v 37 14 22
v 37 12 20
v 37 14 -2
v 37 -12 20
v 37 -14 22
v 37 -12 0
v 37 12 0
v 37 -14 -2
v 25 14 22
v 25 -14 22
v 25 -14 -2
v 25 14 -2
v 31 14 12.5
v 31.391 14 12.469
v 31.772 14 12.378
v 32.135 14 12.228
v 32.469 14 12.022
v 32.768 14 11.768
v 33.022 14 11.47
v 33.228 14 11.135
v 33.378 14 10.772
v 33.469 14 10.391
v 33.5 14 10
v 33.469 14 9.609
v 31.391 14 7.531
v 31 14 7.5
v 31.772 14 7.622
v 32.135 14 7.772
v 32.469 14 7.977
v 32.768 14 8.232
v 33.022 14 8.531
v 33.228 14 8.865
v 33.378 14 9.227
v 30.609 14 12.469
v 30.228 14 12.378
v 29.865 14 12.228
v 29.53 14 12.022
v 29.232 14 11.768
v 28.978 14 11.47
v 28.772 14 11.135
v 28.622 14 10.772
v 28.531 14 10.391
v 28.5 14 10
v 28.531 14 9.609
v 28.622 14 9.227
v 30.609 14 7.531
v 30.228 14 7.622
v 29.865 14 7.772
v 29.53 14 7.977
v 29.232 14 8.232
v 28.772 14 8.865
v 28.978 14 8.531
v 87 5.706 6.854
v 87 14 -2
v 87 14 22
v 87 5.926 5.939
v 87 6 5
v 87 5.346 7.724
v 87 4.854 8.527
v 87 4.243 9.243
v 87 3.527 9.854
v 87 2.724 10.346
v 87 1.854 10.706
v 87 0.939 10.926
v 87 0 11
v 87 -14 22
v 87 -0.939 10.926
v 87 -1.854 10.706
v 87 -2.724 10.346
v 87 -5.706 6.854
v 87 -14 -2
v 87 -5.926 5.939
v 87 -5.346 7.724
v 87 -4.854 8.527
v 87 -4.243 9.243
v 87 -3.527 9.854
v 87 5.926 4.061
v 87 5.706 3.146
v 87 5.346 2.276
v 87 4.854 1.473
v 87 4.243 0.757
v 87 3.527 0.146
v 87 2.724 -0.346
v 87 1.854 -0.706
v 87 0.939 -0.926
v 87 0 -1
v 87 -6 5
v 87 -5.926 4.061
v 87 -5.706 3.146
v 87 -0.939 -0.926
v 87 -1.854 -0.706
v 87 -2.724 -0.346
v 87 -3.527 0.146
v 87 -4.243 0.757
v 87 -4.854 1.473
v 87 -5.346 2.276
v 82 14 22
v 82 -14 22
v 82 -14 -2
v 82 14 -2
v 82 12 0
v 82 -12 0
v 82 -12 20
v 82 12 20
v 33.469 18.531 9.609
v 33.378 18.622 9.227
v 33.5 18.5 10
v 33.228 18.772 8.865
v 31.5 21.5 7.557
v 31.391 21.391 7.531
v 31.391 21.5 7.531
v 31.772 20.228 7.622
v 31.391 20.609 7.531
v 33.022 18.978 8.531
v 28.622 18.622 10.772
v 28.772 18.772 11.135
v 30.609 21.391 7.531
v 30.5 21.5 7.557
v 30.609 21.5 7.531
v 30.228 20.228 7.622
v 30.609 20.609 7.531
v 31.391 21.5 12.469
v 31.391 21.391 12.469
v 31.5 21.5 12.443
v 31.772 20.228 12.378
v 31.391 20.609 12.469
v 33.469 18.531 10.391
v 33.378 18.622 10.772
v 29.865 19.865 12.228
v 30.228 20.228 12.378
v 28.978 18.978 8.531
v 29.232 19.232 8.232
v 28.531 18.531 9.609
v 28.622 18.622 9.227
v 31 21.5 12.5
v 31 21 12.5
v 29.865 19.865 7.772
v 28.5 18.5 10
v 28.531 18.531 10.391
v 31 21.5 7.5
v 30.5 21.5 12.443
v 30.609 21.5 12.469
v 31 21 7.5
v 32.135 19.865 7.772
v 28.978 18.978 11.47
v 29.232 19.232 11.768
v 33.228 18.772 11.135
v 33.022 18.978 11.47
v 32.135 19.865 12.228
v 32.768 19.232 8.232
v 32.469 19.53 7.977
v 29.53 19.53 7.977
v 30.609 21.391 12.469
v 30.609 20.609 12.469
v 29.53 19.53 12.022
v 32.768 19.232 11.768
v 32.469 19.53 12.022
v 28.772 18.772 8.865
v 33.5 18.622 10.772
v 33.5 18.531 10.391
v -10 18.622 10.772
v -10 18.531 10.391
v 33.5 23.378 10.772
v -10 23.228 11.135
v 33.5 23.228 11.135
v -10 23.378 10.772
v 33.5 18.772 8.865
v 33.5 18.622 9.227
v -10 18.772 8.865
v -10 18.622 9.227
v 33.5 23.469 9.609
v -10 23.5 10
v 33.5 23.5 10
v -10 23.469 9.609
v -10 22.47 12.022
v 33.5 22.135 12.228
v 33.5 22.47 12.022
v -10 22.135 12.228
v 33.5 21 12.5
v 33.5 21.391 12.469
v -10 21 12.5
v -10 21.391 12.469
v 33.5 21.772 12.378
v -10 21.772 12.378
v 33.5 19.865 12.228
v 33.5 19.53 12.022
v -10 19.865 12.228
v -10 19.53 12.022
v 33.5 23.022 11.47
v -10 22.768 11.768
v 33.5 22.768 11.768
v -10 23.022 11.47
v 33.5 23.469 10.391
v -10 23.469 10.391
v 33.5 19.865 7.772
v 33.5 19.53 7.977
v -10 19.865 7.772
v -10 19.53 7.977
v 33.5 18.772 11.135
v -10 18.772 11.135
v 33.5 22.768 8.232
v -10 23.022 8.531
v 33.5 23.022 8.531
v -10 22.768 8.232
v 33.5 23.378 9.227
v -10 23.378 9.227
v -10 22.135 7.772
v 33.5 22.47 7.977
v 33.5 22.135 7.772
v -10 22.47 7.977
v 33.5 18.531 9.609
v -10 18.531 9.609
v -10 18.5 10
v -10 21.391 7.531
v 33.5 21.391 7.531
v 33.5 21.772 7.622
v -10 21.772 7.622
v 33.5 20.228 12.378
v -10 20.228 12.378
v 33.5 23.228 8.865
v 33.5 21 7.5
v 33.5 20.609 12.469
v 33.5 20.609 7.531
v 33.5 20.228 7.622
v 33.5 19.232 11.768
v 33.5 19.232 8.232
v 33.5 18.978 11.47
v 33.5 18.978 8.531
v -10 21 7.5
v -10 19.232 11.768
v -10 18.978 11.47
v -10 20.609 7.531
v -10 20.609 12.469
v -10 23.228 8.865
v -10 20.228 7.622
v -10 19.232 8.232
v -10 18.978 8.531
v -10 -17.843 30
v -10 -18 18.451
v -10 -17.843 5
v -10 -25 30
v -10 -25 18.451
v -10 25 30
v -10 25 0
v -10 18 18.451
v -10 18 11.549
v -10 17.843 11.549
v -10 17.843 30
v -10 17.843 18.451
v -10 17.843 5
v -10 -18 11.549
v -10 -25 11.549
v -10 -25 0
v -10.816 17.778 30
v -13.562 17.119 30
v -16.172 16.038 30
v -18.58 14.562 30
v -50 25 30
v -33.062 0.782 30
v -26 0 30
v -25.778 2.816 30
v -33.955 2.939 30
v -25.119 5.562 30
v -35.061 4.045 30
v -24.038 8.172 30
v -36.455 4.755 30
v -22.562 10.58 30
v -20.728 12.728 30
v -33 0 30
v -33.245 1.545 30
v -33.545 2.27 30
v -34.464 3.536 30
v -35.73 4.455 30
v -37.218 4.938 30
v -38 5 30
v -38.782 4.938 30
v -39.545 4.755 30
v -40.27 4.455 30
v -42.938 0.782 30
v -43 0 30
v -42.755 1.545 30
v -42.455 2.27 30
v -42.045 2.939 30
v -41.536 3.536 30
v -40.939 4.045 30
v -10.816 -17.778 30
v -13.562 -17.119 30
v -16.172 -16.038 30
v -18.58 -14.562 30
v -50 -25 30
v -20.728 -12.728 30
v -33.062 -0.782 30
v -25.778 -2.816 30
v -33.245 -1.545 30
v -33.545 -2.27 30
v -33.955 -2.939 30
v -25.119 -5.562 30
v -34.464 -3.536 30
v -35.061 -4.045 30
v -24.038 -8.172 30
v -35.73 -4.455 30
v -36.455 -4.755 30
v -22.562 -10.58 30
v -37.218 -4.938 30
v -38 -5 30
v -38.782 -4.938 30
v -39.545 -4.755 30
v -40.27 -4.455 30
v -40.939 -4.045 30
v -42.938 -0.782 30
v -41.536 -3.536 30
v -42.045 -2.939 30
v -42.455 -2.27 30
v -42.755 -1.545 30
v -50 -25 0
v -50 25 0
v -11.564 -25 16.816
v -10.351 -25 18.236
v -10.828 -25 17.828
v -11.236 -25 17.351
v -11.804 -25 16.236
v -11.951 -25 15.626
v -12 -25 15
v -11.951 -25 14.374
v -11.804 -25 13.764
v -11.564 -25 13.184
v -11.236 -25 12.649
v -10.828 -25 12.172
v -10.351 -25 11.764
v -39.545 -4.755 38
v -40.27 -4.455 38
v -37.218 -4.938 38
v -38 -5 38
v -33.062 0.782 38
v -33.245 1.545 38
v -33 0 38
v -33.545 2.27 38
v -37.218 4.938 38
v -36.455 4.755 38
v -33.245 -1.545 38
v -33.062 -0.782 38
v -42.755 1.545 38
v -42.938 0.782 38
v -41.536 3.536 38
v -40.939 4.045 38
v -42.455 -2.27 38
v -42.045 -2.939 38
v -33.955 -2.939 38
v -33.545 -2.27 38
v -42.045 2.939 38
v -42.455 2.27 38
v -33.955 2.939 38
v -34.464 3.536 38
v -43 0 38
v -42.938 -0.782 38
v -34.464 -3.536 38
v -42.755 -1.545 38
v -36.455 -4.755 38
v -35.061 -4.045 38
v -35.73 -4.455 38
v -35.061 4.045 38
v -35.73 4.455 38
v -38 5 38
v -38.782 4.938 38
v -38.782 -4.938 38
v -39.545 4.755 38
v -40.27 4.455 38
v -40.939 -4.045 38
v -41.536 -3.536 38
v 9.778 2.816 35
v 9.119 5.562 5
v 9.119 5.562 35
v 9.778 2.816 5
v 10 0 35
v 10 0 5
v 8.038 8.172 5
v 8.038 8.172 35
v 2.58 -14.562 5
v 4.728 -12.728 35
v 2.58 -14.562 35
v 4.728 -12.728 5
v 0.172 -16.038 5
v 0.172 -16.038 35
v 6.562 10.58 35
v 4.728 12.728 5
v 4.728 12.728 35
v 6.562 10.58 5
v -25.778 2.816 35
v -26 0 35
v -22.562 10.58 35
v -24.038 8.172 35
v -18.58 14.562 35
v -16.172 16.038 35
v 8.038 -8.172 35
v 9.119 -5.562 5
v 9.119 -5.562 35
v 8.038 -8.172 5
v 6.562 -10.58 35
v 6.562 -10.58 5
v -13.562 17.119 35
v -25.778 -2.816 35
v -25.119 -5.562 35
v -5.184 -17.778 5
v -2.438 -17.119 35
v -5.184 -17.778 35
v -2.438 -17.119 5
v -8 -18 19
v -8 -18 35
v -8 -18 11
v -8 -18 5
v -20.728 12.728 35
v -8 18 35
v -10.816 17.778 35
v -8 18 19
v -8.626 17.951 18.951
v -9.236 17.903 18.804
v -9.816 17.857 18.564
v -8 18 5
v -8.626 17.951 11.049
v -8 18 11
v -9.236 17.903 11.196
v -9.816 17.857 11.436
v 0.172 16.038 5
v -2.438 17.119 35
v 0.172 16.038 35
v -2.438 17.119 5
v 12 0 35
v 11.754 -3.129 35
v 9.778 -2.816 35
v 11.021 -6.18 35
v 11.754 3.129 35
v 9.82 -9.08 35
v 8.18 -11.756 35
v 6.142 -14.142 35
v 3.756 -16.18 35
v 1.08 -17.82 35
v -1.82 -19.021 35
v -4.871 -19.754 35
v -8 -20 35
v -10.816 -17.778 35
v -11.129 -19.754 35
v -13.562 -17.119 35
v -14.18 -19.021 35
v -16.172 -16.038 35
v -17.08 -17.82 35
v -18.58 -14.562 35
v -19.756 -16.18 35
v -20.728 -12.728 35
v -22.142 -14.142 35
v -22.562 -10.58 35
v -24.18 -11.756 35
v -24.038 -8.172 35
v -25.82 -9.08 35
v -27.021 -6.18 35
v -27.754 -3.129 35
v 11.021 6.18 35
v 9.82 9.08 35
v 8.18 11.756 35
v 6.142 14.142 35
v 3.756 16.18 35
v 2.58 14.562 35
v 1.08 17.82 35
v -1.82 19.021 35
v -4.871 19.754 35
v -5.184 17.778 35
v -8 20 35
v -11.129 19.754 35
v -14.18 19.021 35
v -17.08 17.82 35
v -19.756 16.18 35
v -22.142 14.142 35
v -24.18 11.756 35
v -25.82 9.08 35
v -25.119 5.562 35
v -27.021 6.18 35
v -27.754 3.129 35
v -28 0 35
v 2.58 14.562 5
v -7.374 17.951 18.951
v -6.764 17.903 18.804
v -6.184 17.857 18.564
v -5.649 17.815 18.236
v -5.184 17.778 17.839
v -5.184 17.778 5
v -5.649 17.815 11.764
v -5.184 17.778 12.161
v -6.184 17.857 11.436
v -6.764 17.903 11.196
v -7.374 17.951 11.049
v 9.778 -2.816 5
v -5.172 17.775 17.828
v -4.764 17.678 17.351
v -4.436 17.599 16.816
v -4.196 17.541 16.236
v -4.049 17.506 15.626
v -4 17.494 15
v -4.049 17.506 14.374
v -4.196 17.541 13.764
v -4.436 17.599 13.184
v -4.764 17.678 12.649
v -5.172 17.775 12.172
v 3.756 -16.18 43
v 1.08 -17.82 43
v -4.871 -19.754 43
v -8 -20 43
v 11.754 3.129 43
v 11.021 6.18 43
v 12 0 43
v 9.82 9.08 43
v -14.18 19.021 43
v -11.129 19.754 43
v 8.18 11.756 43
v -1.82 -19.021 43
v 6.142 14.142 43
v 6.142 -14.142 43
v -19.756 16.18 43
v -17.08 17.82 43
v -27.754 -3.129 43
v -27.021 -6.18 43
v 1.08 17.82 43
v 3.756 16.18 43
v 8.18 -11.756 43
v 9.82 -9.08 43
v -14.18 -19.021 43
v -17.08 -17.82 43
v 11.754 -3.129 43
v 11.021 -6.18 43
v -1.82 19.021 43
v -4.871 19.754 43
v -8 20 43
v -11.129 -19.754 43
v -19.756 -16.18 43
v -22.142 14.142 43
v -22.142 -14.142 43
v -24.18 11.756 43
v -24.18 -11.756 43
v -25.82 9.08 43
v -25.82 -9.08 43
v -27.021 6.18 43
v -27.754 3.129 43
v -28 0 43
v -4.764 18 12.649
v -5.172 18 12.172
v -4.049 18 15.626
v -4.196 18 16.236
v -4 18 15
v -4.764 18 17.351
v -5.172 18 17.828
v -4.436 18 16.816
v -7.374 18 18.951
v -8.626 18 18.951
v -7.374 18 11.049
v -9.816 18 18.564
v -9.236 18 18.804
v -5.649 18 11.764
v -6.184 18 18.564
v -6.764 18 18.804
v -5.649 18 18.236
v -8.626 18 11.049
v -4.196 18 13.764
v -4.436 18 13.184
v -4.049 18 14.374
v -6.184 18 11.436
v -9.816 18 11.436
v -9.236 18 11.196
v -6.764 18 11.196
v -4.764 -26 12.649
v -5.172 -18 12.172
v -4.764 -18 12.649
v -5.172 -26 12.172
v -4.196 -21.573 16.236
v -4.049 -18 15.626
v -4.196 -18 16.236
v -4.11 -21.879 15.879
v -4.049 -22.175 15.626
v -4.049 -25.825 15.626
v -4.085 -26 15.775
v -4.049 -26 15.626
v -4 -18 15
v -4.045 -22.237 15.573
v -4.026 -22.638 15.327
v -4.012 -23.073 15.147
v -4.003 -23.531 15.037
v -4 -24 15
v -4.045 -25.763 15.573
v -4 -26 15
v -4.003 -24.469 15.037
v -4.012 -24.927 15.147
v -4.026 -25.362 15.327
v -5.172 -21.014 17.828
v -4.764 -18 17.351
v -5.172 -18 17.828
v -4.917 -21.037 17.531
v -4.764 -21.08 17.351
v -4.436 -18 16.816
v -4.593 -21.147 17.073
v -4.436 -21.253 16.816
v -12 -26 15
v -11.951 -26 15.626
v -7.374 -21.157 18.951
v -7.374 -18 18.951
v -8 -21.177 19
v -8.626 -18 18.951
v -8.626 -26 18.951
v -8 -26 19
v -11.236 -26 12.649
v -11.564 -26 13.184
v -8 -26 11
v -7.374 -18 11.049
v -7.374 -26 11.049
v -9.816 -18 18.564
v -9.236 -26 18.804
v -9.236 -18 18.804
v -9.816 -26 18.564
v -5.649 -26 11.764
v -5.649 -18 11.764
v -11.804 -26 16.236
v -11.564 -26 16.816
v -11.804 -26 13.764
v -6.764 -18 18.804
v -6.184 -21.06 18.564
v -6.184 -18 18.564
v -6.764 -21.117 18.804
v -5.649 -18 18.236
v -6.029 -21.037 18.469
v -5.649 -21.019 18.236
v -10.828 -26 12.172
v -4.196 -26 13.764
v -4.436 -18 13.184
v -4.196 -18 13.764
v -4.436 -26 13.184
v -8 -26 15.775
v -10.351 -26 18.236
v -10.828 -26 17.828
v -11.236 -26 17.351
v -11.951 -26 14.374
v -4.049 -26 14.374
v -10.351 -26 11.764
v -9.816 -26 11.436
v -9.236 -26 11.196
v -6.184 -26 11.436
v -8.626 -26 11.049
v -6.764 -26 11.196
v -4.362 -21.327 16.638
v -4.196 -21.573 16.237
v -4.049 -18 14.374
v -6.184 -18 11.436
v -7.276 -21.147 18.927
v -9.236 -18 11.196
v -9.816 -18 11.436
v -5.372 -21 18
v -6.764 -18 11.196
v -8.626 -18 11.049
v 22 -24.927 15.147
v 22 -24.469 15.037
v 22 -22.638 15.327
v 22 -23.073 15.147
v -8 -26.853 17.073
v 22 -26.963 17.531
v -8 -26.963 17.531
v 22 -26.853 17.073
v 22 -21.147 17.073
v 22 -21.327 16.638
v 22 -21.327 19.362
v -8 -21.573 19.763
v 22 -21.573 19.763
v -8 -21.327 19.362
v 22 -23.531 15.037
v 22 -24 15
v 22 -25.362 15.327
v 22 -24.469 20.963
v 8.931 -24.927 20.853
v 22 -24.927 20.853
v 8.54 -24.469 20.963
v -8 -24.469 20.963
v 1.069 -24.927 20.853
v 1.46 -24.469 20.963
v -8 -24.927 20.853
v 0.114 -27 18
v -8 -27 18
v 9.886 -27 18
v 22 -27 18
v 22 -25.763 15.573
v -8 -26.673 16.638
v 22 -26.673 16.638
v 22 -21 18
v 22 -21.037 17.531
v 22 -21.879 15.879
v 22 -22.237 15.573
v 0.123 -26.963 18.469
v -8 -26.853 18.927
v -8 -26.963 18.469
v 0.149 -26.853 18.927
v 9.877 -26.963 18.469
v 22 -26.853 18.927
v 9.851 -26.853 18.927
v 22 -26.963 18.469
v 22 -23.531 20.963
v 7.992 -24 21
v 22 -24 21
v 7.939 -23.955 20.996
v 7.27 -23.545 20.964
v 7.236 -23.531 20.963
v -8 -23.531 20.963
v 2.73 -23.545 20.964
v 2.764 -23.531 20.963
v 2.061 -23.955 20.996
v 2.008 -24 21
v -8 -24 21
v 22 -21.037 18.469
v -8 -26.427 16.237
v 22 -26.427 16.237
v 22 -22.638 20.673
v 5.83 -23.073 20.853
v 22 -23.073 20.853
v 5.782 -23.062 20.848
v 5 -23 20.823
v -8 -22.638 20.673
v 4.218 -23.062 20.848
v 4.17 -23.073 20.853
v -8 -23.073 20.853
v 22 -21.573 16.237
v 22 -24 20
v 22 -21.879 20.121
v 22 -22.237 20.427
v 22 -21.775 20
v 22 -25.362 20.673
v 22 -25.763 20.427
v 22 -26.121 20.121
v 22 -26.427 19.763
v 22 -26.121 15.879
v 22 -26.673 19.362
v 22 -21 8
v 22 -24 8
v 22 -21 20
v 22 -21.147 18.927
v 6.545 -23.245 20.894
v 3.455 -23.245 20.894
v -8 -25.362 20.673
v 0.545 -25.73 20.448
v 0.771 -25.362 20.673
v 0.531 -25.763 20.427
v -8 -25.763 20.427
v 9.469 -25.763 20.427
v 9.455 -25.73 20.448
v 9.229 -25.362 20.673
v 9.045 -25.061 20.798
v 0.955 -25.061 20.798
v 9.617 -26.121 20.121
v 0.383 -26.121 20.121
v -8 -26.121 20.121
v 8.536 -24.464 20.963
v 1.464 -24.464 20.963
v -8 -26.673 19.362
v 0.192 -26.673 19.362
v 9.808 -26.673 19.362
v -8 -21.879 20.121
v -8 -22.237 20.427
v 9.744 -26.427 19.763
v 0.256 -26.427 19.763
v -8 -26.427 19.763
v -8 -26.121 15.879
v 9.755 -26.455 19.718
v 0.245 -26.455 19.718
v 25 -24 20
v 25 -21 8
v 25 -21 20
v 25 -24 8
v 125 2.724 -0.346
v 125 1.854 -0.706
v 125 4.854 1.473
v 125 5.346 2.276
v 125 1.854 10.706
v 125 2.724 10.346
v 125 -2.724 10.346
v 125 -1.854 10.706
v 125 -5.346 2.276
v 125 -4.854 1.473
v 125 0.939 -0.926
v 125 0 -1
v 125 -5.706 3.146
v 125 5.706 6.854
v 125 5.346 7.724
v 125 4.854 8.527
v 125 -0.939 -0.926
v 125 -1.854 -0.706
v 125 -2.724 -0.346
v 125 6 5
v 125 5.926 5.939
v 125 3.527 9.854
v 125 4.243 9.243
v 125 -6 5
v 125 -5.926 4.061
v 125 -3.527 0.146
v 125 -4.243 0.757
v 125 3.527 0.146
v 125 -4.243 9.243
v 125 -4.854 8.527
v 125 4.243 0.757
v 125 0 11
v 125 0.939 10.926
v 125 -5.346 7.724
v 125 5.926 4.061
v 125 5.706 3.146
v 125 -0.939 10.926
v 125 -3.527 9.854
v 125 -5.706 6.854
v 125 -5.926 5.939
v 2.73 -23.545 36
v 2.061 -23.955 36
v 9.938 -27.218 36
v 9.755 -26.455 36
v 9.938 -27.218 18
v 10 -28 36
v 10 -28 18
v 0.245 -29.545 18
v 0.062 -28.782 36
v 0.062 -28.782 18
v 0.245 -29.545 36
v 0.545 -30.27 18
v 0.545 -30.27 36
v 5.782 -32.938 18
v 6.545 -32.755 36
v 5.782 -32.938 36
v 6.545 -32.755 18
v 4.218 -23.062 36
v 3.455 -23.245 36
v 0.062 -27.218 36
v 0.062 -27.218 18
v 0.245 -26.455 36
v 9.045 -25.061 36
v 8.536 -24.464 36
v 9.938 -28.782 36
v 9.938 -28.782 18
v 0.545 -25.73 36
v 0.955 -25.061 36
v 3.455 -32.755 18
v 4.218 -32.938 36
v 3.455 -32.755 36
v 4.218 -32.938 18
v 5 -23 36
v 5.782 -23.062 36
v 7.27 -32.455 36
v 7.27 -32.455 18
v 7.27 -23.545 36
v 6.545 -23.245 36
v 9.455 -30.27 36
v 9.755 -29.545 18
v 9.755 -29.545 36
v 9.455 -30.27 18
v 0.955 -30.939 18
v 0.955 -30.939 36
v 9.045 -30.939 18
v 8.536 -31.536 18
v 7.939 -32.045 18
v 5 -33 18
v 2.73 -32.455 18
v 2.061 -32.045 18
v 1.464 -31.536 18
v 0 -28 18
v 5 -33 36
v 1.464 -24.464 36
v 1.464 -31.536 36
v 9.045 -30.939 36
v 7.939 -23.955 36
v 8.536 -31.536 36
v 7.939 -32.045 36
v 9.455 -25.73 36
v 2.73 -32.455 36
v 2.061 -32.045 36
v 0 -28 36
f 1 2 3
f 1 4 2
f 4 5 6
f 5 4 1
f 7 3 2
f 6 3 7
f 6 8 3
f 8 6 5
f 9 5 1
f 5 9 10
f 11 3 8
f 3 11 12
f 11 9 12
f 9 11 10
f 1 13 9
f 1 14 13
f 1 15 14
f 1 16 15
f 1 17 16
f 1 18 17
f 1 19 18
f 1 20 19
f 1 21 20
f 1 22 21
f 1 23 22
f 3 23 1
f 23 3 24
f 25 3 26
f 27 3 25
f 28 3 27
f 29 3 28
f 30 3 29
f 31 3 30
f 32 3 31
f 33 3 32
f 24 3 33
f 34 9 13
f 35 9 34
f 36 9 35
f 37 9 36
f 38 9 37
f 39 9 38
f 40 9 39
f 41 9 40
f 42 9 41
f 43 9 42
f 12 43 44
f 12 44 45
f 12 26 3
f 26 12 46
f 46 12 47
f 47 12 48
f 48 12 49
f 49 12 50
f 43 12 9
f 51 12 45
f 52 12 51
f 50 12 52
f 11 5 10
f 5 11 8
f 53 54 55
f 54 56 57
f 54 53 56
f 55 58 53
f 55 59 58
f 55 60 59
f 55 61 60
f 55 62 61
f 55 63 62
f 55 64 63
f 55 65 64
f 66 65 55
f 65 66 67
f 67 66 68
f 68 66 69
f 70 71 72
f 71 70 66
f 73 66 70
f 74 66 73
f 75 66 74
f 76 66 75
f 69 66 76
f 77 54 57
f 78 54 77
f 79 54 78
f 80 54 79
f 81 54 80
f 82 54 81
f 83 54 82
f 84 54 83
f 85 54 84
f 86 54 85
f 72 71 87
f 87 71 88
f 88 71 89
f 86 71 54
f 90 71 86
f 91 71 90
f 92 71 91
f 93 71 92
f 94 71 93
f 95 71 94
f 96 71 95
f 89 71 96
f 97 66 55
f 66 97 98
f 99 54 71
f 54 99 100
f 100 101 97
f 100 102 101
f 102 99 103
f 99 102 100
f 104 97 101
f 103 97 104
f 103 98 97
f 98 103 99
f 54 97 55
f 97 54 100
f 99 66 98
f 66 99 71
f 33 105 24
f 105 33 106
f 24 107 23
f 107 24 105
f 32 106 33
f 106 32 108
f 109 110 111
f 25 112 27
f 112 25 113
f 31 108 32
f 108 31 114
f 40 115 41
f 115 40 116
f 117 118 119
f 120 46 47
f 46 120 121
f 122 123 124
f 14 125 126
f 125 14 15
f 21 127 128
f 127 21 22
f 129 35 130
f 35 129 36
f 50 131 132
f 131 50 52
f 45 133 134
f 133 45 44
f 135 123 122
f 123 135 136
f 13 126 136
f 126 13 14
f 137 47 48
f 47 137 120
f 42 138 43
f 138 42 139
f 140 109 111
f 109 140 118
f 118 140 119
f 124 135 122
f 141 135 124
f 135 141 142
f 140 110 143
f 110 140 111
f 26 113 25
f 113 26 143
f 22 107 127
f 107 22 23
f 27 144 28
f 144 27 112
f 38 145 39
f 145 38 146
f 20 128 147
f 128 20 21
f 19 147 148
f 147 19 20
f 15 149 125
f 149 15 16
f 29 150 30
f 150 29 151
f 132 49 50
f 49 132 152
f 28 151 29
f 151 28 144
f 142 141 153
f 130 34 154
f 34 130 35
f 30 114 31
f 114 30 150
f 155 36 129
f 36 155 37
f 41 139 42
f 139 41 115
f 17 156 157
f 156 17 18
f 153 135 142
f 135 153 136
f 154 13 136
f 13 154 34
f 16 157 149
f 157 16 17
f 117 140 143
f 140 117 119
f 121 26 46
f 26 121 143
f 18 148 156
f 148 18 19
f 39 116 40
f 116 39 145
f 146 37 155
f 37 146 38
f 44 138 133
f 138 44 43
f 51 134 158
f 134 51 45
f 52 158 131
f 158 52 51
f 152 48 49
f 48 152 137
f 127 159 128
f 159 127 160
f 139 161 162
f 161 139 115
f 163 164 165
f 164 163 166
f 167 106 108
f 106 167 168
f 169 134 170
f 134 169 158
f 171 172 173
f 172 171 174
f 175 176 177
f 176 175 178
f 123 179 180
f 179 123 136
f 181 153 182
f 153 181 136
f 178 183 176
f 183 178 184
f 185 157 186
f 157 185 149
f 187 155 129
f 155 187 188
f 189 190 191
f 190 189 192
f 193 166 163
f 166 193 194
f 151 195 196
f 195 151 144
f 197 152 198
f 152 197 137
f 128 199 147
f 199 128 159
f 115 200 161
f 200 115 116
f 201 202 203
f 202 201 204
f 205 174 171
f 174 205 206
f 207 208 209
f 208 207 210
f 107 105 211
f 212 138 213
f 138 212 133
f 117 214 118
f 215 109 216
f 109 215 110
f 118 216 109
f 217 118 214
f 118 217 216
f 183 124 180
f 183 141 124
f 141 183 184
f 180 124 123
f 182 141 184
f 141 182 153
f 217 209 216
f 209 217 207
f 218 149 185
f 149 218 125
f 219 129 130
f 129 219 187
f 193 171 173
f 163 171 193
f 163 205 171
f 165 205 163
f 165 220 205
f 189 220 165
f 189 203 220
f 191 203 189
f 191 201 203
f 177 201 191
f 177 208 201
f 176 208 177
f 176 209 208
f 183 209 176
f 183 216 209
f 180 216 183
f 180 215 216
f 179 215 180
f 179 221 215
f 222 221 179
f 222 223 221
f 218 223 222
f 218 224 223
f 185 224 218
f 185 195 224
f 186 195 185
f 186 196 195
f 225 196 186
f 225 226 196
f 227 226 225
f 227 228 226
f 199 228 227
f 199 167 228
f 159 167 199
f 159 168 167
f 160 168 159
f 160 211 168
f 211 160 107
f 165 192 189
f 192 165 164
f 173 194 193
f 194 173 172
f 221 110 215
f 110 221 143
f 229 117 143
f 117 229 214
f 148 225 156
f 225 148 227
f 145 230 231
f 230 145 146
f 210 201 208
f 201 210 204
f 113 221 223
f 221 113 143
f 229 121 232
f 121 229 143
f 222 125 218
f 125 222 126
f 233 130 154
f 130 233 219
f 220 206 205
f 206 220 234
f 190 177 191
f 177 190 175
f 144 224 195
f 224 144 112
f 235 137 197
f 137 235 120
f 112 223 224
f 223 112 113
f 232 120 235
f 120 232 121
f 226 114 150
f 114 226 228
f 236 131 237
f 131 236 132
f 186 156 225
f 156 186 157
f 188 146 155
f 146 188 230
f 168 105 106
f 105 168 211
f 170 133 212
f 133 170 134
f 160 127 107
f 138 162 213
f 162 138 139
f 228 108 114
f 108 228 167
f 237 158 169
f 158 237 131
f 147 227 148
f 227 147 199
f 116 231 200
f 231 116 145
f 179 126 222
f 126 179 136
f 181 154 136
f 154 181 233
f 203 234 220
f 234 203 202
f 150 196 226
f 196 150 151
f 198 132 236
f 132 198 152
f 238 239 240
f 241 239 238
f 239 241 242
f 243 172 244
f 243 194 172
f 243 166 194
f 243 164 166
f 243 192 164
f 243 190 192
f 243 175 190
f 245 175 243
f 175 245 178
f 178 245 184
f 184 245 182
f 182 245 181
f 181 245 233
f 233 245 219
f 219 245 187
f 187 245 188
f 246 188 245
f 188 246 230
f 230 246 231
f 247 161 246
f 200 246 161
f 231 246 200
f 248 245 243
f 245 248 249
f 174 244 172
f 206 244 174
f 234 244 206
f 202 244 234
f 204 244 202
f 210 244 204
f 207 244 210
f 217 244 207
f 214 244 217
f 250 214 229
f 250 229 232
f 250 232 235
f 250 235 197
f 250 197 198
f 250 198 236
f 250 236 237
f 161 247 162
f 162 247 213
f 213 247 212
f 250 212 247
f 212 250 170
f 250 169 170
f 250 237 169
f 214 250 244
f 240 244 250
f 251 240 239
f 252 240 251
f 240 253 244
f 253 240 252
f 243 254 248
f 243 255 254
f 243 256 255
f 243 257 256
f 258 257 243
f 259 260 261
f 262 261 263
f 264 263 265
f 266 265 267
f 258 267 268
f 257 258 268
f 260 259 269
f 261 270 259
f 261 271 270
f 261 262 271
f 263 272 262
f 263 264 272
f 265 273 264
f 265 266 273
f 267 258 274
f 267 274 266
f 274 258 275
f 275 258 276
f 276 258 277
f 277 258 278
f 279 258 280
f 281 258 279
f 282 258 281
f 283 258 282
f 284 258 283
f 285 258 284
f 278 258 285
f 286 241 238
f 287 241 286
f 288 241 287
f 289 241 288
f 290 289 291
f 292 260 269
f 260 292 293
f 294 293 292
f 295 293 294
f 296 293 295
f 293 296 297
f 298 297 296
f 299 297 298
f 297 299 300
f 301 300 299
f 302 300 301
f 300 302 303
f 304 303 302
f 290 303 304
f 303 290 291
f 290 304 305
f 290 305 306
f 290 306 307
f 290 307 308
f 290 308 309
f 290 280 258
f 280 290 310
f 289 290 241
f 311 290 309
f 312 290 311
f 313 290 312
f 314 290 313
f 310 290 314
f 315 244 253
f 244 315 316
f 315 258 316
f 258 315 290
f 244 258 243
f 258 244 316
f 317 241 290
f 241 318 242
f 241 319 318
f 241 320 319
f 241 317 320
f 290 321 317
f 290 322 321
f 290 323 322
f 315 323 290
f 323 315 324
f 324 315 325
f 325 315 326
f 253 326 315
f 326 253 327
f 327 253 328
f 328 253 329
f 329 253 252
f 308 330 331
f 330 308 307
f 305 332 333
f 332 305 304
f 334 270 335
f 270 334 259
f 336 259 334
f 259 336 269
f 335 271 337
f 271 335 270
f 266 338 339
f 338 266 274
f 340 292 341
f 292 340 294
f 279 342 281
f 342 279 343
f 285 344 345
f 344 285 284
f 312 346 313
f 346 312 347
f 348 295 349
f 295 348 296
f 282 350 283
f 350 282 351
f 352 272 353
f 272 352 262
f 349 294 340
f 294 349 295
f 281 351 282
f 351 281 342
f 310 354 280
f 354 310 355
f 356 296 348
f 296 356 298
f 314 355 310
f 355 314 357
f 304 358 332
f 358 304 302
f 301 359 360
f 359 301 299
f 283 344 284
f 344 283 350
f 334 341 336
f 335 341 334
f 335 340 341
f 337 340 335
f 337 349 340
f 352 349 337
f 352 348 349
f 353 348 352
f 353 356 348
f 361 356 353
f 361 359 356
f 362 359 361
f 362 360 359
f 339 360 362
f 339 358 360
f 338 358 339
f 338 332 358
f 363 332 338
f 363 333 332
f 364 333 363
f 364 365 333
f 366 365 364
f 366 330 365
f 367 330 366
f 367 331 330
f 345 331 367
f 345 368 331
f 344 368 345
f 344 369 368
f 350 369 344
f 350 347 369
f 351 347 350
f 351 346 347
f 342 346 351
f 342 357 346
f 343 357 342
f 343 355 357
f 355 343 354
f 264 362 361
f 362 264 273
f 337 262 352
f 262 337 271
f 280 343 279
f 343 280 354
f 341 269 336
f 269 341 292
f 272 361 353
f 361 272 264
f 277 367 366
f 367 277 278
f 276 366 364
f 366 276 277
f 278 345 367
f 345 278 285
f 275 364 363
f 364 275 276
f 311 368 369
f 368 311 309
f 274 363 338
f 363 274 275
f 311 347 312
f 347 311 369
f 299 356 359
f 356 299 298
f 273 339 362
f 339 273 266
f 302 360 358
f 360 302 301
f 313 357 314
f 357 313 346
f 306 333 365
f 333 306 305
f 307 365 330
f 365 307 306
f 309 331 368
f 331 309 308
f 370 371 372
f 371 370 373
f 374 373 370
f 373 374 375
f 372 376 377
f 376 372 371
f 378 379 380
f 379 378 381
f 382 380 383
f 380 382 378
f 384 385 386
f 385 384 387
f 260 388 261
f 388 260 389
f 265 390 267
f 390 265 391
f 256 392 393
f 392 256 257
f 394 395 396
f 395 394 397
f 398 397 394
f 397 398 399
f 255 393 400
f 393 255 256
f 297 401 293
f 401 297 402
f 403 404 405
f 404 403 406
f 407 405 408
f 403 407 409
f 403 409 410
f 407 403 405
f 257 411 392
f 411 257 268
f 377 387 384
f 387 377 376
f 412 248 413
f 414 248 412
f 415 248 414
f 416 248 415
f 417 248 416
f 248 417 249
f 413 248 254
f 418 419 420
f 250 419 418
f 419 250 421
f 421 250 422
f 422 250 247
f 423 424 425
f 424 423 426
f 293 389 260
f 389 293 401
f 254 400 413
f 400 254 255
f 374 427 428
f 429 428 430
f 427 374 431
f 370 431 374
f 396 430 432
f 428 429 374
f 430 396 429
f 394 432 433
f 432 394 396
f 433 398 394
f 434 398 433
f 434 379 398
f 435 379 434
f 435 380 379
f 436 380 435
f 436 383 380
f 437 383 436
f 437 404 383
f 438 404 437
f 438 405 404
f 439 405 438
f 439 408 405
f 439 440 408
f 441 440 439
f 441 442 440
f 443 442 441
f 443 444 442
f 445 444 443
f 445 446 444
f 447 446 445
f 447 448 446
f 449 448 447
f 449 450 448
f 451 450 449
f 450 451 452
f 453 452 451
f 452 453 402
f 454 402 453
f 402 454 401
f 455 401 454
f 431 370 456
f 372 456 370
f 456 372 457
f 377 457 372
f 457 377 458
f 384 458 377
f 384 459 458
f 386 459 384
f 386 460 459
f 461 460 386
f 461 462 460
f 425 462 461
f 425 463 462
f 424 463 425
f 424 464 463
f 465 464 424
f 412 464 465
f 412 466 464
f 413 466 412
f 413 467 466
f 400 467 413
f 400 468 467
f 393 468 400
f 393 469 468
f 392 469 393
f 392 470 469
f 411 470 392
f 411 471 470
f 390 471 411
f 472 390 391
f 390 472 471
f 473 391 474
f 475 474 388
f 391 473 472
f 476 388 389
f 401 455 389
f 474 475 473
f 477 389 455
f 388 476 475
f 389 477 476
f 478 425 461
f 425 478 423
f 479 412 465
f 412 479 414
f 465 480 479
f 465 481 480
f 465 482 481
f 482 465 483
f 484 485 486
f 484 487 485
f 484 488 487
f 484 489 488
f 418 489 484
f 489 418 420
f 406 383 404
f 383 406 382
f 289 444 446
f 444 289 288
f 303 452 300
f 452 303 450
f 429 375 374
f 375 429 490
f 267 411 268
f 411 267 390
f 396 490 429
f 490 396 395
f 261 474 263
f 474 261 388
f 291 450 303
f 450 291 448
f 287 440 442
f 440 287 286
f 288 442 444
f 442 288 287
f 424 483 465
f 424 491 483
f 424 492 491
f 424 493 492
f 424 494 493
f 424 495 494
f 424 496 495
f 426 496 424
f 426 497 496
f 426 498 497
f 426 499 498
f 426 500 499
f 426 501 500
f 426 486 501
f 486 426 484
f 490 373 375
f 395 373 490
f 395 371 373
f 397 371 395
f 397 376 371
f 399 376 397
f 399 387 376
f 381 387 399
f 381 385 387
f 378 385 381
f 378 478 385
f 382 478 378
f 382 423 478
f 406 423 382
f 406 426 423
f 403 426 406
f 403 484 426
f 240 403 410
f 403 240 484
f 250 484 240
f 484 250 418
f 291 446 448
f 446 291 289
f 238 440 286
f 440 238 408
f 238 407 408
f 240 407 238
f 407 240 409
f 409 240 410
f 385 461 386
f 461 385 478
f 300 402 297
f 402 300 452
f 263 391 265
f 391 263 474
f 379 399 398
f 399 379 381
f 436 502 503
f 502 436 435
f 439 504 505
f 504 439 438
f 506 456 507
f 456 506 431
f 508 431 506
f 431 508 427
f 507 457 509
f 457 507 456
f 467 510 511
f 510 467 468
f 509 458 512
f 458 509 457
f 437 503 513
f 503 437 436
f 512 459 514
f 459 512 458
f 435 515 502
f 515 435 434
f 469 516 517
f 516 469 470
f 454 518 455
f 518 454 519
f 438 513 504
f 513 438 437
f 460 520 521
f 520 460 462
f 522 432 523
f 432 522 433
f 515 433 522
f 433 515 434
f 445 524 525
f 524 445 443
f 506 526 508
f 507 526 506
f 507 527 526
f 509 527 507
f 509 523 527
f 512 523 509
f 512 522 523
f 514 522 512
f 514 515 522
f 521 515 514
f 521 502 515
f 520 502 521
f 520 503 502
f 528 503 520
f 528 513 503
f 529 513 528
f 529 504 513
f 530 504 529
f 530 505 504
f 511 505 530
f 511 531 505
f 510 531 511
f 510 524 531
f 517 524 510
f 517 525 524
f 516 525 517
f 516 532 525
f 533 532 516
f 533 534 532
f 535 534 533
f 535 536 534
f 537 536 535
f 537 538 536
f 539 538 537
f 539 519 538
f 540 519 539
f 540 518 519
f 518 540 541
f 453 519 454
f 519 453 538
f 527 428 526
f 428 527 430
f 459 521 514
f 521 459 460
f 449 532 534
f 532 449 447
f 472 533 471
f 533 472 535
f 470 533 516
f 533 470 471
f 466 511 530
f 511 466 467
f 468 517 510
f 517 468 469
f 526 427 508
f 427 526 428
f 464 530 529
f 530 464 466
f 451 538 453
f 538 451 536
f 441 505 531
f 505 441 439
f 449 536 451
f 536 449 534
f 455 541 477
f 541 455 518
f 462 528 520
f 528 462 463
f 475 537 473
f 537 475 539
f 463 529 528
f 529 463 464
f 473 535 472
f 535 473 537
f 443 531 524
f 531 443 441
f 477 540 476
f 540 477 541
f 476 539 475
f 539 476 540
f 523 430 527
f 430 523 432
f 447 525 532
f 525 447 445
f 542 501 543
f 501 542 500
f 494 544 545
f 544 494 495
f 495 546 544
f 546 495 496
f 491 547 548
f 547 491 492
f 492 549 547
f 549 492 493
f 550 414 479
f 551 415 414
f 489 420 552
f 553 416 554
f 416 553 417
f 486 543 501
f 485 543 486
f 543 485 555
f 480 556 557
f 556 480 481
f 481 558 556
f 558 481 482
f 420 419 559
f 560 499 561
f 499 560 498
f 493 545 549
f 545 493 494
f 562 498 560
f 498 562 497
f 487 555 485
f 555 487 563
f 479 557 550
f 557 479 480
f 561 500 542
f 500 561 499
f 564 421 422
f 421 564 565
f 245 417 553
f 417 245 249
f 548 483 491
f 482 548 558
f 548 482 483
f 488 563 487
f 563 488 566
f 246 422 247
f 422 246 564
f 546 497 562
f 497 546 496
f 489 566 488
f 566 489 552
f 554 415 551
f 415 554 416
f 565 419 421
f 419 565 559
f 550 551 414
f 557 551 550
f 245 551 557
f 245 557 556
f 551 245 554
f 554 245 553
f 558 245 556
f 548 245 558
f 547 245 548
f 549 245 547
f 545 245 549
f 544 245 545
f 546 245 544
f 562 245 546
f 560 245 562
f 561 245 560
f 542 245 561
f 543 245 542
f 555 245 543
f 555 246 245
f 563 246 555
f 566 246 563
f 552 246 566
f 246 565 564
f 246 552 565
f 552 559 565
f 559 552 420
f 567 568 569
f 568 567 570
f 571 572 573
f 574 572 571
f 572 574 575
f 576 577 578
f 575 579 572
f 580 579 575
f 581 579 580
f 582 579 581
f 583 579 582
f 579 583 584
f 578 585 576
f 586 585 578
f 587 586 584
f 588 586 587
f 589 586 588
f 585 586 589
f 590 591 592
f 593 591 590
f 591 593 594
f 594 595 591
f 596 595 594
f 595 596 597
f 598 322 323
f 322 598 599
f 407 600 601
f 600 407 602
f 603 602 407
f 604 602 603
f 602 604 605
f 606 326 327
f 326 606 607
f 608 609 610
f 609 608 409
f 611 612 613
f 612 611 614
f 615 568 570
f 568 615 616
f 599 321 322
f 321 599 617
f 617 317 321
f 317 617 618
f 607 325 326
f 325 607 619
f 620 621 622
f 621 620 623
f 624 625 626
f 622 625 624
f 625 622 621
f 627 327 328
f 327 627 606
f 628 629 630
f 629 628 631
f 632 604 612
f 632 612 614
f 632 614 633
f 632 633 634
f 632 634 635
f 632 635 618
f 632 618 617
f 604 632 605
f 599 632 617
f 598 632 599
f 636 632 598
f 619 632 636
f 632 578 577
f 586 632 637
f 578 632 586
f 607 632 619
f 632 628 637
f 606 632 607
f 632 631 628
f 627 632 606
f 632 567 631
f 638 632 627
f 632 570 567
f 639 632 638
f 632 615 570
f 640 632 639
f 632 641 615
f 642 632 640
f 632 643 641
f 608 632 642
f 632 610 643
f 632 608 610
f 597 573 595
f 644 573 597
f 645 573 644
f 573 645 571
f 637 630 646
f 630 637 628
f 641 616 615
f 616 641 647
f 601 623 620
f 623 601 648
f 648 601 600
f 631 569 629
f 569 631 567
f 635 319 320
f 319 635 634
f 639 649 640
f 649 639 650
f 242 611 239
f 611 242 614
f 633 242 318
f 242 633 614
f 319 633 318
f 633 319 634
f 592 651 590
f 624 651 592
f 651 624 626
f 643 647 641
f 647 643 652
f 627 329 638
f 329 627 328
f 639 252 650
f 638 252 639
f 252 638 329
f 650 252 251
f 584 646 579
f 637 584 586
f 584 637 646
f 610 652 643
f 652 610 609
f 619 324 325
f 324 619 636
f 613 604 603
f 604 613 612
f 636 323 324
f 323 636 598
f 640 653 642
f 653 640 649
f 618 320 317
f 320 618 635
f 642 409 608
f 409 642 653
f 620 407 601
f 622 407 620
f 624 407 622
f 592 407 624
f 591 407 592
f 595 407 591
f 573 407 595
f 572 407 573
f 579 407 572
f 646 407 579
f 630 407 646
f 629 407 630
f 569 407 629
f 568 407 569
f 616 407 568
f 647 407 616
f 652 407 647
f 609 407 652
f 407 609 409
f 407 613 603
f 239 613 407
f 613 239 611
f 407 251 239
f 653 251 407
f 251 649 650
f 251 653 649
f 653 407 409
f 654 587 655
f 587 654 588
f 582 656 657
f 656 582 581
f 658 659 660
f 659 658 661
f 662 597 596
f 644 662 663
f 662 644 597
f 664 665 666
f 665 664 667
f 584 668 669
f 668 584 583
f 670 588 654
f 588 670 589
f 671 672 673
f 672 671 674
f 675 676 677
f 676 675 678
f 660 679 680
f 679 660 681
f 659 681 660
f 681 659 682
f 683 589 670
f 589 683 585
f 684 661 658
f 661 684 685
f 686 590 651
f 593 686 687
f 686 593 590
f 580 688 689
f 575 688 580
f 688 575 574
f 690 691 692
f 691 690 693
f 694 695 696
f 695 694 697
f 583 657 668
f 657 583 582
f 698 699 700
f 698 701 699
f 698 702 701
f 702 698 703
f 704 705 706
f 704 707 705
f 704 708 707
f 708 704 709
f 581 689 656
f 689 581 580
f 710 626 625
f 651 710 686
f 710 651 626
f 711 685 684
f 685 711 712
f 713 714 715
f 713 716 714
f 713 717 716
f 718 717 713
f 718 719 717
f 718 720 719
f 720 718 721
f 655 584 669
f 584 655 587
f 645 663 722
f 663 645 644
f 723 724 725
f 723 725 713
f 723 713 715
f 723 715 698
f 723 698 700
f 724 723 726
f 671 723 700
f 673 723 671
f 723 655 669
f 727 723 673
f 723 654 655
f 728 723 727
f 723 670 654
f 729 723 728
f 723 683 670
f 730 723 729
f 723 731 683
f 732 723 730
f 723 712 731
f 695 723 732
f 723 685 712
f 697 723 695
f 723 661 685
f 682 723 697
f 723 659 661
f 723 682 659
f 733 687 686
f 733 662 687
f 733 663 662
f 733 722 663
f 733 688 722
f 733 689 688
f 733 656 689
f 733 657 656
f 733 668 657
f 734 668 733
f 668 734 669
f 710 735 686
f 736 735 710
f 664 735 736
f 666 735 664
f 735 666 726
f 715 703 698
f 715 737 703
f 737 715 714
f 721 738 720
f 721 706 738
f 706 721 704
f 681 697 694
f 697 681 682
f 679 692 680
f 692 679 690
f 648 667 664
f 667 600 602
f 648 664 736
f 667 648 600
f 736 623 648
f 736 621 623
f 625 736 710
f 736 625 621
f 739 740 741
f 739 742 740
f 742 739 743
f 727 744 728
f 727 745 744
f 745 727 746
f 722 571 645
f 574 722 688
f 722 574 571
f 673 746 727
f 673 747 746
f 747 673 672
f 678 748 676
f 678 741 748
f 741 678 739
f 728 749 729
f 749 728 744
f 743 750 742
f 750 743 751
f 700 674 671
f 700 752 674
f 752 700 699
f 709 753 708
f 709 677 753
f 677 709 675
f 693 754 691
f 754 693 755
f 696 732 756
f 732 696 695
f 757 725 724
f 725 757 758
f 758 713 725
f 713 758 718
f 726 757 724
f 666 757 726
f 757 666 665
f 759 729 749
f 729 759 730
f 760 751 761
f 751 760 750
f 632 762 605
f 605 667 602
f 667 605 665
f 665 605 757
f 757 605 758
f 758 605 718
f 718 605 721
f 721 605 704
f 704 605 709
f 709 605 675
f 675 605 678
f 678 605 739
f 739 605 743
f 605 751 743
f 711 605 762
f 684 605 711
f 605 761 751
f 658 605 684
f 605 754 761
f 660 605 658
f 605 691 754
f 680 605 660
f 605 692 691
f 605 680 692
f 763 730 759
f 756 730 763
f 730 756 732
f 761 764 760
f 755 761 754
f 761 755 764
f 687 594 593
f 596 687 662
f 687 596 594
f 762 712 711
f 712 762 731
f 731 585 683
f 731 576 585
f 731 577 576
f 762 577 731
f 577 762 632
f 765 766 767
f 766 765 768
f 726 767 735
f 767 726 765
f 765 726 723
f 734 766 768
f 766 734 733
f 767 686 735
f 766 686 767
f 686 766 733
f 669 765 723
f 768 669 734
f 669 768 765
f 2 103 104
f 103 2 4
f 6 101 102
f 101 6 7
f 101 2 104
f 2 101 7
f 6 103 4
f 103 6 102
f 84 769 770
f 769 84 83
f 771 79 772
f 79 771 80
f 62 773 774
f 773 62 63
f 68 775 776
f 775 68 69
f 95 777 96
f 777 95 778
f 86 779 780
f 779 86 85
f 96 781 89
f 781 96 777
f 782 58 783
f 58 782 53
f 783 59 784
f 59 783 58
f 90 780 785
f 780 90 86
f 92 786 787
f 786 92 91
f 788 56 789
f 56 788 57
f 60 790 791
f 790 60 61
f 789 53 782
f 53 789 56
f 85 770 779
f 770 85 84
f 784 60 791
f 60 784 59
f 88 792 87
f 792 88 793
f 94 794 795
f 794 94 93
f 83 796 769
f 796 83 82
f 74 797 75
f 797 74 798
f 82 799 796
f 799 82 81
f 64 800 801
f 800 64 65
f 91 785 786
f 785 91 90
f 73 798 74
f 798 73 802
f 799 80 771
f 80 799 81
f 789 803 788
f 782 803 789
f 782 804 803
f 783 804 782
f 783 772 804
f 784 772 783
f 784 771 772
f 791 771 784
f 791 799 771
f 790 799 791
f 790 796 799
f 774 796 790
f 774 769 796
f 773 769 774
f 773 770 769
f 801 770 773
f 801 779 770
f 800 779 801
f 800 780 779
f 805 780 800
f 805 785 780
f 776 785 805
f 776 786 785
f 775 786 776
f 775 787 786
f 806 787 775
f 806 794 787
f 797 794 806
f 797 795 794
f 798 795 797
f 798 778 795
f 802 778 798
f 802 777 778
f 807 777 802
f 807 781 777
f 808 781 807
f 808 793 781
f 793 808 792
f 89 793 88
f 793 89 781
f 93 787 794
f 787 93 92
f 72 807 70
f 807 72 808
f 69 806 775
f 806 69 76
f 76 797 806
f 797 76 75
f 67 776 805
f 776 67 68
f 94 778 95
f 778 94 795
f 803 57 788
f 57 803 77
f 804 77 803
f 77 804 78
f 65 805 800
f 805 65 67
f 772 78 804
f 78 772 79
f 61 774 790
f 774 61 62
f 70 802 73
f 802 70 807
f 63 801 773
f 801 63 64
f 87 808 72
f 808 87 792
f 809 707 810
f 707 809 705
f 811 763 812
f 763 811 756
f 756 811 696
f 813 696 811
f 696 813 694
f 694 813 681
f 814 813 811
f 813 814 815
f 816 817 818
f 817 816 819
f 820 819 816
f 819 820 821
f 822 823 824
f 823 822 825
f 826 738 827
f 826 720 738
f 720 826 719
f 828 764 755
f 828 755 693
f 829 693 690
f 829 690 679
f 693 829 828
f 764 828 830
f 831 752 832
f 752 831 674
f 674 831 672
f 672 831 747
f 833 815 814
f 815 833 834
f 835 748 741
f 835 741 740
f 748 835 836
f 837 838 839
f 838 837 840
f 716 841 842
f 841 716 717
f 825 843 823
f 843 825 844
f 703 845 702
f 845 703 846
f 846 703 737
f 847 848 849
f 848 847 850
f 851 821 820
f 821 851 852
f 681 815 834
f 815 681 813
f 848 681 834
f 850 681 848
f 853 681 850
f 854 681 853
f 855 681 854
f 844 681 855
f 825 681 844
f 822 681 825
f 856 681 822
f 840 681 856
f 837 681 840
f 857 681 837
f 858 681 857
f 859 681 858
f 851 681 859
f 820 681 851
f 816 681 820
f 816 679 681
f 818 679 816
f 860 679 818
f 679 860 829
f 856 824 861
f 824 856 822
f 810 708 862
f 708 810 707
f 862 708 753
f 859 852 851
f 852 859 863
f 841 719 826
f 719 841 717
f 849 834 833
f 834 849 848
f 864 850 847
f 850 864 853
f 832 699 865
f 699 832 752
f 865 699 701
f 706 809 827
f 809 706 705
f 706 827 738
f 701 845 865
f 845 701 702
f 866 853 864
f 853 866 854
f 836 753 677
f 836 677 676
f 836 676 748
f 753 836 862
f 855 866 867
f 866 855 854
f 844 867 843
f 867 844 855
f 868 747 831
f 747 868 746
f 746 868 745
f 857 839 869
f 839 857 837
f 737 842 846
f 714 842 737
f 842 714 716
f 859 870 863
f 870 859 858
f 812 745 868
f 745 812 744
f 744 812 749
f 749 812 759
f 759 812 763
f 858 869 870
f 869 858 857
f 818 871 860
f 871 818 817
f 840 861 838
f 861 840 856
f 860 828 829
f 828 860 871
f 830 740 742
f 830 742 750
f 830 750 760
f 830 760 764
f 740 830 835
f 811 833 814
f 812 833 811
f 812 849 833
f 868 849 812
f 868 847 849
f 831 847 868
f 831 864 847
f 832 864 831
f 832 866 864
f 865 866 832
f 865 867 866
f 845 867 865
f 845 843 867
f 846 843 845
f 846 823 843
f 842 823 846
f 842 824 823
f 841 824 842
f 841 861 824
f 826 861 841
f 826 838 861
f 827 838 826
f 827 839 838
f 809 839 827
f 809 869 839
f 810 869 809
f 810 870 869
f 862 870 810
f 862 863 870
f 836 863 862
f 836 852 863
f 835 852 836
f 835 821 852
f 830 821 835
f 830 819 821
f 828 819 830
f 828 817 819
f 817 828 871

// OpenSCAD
// 液壓系統 Hydraulic System — 油壓缸 + 幫浦 + 油箱
$fn = 40;

// 油箱（矩形，藍灰）
color([0.25, 0.35, 0.52])
  translate([-50, -25, 0]) cube([40, 50, 30]);
// 油箱加油口
color([0.55, 0.56, 0.58])
  translate([-38, 0, 30]) cylinder(h = 8, r = 5);
// 油位視窗（透明）
color([0.40, 0.60, 0.80, 0.6])
  translate([-49, -10, 5]) cube([2, 20, 18]);

// 液壓幫浦（圓柱，灰色）
color([0.45, 0.46, 0.48])
  translate([-8, 0, 5]) cylinder(h = 30, r = 18);
color([0.38, 0.39, 0.42])
  translate([-8, 0, 35]) cylinder(h = 8, r = 20);
// 幫浦入口
color([0.55, 0.56, 0.58])
  translate([-8, 18, 15]) rotate([90, 0, 0]) cylinder(h = 20, r = 4);
// 幫浦出口（高壓）
color([0.70, 0.52, 0.10])
  translate([-8, -18, 15]) rotate([90, 0, 0]) cylinder(h = 8, r = 4);

// 高壓油管
color([0.70, 0.52, 0.10])
  translate([-8, -24, 18]) rotate([0, 90, 0]) cylinder(h = 30, r = 3);
color([0.70, 0.52, 0.10])
  translate([22, -24, 8]) cube([3, 3, 12]);

// 油壓缸（主要執行元件）
color([0.55, 0.56, 0.58])
  translate([25, -12, 0]) cube([60, 24, 20]);

// 活塞桿（伸出）
color([0.75, 0.76, 0.78])
  translate([85, 0, 5]) rotate([0, 90, 0]) cylinder(h = 40, r = 6);

// 活塞端蓋
color([0.42, 0.42, 0.45]) {
  translate([25, -14, -2]) cube([12, 28, 24]);
  translate([82, -14, -2]) cube([5, 28, 24]);
}

// 回油管（低壓，藍色）：從油壓缸尾端沿 −X 回到油箱（油箱 x∈[-50,-10]）
// 舊寫法 rotate([0,-90,90]) 是朝 −Y 伸出 80 mm，管子懸在半空、沒接回油箱
// 2026-10 本機算繪後再修：y = 14 會從幫浦本體（圓心 (-8,0)、r = 18）中間穿過，看起來像接回幫浦；
// 改走 y = 21（幫浦外側、仍在油箱 y∈[-25,25] 內），並從尾端蓋側面接一小段出來
color([0.15, 0.38, 0.72]) {
  translate([31, 13, 10]) rotate([-90, 0, 0]) cylinder(h = 8.5, r = 2.5);    // 尾端蓋 → 側面
  translate([33.5, 21, 10]) rotate([0, -90, 0]) cylinder(h = 75.5, r = 2.5); // 沿 −X 進油箱（x = −42）
}

// 安全閥
color([0.85, 0.08, 0.08])
  translate([5, -28, 18]) cylinder(h = 12, r = 5);
color([0.70, 0.06, 0.06])
  translate([5, -28, 30]) cylinder(h = 6, r = 5);
